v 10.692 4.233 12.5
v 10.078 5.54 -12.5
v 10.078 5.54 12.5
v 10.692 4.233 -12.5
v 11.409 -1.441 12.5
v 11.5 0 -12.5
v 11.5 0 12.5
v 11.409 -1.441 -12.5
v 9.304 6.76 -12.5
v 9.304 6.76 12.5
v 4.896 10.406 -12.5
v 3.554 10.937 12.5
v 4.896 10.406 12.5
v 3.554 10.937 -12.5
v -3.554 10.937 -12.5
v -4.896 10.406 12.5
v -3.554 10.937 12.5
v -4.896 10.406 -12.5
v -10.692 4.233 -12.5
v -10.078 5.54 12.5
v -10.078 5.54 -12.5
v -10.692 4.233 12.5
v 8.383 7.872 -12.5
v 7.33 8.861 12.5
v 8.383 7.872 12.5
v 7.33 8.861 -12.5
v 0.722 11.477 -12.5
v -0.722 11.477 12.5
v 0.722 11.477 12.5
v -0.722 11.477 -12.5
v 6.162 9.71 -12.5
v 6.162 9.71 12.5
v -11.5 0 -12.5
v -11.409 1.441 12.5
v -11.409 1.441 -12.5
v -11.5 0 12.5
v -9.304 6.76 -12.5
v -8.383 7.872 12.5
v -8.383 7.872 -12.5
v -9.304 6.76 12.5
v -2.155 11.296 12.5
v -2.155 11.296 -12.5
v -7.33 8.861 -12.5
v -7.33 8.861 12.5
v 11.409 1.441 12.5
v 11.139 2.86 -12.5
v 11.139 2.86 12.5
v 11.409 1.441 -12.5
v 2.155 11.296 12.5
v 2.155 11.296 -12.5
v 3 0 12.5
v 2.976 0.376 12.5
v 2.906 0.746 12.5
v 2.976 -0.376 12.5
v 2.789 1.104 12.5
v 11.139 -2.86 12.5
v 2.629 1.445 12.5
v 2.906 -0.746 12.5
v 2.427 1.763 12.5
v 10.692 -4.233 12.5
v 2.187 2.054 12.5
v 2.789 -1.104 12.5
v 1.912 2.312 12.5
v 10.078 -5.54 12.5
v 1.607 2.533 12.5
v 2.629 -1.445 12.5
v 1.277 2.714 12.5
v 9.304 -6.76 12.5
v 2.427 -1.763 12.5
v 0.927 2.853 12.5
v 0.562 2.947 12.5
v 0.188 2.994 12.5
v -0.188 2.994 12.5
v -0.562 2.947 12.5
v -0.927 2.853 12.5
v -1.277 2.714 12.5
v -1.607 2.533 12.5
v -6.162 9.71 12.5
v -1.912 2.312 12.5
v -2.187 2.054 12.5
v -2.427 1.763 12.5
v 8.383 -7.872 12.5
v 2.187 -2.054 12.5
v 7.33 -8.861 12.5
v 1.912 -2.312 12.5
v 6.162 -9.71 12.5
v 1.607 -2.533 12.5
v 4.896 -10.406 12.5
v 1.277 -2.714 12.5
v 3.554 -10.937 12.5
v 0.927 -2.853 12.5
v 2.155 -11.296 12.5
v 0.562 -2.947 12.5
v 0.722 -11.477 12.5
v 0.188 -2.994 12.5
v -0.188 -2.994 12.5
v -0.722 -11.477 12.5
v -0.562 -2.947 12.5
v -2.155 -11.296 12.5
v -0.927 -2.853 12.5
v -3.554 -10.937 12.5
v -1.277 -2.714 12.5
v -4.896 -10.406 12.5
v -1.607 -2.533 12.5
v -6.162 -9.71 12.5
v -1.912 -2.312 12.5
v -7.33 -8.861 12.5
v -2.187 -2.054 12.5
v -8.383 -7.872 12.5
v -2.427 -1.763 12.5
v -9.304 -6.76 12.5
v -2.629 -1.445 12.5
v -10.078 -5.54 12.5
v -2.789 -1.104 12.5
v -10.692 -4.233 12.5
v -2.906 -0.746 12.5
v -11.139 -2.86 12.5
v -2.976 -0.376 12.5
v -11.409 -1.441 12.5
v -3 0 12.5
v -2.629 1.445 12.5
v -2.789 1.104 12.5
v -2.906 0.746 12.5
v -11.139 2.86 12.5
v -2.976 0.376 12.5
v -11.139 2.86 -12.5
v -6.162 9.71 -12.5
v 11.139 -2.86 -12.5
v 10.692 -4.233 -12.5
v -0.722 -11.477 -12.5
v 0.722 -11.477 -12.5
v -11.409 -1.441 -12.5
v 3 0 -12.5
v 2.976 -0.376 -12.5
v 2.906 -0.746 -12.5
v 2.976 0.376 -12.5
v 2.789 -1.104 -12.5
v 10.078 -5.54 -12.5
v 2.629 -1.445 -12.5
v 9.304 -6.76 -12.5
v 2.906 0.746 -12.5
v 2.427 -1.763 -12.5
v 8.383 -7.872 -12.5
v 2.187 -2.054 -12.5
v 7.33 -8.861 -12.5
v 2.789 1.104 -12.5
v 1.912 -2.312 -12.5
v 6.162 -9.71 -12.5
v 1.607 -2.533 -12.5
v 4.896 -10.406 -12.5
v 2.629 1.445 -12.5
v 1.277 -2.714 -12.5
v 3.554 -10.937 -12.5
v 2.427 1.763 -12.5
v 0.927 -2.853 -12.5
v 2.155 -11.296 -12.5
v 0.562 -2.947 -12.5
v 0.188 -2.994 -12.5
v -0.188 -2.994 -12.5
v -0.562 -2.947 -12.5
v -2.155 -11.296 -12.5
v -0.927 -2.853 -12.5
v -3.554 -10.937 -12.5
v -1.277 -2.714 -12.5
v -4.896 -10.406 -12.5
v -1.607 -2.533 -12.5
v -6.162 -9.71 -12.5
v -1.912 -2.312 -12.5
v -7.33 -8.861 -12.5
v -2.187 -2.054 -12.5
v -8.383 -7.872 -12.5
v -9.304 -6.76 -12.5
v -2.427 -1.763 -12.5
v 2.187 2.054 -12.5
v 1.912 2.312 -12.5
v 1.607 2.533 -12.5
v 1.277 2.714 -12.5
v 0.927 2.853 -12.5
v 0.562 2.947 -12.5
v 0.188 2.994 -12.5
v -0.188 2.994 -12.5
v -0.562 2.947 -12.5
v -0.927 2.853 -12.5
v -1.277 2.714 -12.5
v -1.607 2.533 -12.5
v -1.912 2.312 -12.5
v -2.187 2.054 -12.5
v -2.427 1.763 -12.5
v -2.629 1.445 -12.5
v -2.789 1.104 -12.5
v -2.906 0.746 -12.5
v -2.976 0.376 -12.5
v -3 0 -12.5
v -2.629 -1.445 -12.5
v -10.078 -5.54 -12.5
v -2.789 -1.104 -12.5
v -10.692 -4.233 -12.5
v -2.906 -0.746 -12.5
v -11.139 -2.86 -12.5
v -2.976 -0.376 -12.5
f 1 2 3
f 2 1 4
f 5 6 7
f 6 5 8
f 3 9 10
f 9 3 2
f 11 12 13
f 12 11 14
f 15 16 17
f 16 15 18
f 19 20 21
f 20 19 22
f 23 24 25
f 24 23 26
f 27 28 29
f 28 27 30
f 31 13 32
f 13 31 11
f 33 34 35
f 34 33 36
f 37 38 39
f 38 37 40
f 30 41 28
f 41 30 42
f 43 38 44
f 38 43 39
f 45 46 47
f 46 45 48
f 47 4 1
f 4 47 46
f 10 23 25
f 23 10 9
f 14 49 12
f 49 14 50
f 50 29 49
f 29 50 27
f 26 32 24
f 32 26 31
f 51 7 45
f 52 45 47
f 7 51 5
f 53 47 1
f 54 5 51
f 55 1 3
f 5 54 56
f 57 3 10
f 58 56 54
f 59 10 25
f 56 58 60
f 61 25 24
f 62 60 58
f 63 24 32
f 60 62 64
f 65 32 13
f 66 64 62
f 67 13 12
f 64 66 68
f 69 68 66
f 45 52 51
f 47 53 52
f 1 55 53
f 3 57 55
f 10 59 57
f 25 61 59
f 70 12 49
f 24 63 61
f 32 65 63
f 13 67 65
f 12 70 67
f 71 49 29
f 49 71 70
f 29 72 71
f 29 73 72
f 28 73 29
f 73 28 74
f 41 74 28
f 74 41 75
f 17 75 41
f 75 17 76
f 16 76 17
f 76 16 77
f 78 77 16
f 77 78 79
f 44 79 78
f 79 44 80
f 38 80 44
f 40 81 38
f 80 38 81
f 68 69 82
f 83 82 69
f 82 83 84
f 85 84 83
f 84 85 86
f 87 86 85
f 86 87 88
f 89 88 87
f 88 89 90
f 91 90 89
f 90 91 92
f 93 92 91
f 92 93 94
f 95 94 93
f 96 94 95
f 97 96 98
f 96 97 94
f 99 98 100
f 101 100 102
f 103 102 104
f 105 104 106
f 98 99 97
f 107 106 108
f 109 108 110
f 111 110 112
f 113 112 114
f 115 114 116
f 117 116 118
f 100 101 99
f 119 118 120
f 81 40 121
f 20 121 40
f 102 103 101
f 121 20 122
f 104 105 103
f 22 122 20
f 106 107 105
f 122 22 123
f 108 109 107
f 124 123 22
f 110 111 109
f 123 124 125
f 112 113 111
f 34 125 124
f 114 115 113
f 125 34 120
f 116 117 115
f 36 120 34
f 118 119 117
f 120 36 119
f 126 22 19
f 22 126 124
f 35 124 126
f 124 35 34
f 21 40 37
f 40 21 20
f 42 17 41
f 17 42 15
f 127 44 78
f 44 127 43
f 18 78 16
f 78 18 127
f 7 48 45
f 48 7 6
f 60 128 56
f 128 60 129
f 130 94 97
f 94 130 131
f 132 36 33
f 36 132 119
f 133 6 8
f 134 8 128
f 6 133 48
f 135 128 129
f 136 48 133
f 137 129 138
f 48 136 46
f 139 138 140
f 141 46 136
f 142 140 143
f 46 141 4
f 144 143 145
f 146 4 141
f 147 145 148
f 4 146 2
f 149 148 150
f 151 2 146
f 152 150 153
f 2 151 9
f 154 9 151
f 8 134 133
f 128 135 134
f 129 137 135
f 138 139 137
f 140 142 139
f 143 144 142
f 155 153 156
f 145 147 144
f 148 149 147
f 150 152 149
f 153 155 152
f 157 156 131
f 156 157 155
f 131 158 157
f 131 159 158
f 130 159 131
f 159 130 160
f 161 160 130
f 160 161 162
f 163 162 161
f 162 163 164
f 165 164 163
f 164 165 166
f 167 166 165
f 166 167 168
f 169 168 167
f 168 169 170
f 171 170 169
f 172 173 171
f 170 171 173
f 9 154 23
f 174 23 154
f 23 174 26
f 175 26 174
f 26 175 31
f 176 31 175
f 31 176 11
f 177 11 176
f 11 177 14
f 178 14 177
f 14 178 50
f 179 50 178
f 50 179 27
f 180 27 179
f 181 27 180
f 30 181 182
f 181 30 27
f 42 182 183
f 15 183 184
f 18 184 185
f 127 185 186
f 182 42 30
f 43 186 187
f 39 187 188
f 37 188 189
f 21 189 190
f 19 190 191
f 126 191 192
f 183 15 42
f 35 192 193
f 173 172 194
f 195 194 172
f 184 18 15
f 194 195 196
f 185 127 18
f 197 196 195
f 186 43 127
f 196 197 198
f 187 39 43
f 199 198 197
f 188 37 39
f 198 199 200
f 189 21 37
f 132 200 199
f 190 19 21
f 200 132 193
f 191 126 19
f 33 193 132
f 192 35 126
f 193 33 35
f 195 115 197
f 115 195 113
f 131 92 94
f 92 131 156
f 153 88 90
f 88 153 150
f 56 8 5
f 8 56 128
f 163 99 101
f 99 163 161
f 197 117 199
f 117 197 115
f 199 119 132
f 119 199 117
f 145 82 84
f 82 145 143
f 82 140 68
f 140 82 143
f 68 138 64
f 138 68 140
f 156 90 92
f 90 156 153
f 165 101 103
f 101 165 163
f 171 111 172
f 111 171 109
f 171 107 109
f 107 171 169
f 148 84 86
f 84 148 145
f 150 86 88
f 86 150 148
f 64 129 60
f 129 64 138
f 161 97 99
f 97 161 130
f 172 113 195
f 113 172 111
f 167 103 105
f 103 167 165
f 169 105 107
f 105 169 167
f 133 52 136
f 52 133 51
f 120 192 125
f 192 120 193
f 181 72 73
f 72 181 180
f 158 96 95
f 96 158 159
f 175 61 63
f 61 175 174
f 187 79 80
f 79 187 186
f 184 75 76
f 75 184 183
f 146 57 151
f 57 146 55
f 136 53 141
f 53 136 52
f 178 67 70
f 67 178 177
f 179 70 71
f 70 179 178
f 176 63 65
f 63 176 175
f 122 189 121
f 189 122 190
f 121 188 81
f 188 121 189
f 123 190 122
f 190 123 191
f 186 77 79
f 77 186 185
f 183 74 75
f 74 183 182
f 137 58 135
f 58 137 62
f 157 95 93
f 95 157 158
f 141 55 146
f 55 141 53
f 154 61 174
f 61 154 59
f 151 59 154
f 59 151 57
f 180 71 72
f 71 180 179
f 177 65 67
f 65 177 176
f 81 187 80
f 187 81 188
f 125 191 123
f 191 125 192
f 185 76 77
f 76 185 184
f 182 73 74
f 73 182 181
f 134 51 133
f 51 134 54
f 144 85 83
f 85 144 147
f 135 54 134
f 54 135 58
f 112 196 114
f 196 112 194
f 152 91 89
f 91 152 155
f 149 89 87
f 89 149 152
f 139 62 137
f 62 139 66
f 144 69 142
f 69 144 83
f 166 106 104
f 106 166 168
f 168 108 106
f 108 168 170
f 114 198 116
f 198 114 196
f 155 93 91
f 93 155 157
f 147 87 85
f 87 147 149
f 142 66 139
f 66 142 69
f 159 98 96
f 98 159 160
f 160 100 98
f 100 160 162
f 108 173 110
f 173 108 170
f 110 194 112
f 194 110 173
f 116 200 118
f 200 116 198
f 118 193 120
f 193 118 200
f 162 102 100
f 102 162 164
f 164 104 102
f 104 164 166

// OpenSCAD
$fn = 50;


difference() {
	union() {
		translate(v = [0, 0, -12.5000000000]) {
			cylinder(h = 25, r = 11.5000000000);
		}
	}
	union() {
		translate(v = [0, 0, -100.0000000000]) {
			cylinder(h = 200, r = 3);
		}
	}
}
